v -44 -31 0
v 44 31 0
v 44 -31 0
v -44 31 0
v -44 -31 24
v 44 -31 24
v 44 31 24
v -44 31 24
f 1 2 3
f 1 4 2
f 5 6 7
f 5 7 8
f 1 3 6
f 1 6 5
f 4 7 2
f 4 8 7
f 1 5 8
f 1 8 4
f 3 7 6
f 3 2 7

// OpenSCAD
// Gemini 4 Argon Parametric OpenSCAD — PRT-01: Universal iPhone Camera Alignment Saddle
$fn = 64;
translate([-44.00, -31.00, 0])
  cube([88, 62, 24]);
